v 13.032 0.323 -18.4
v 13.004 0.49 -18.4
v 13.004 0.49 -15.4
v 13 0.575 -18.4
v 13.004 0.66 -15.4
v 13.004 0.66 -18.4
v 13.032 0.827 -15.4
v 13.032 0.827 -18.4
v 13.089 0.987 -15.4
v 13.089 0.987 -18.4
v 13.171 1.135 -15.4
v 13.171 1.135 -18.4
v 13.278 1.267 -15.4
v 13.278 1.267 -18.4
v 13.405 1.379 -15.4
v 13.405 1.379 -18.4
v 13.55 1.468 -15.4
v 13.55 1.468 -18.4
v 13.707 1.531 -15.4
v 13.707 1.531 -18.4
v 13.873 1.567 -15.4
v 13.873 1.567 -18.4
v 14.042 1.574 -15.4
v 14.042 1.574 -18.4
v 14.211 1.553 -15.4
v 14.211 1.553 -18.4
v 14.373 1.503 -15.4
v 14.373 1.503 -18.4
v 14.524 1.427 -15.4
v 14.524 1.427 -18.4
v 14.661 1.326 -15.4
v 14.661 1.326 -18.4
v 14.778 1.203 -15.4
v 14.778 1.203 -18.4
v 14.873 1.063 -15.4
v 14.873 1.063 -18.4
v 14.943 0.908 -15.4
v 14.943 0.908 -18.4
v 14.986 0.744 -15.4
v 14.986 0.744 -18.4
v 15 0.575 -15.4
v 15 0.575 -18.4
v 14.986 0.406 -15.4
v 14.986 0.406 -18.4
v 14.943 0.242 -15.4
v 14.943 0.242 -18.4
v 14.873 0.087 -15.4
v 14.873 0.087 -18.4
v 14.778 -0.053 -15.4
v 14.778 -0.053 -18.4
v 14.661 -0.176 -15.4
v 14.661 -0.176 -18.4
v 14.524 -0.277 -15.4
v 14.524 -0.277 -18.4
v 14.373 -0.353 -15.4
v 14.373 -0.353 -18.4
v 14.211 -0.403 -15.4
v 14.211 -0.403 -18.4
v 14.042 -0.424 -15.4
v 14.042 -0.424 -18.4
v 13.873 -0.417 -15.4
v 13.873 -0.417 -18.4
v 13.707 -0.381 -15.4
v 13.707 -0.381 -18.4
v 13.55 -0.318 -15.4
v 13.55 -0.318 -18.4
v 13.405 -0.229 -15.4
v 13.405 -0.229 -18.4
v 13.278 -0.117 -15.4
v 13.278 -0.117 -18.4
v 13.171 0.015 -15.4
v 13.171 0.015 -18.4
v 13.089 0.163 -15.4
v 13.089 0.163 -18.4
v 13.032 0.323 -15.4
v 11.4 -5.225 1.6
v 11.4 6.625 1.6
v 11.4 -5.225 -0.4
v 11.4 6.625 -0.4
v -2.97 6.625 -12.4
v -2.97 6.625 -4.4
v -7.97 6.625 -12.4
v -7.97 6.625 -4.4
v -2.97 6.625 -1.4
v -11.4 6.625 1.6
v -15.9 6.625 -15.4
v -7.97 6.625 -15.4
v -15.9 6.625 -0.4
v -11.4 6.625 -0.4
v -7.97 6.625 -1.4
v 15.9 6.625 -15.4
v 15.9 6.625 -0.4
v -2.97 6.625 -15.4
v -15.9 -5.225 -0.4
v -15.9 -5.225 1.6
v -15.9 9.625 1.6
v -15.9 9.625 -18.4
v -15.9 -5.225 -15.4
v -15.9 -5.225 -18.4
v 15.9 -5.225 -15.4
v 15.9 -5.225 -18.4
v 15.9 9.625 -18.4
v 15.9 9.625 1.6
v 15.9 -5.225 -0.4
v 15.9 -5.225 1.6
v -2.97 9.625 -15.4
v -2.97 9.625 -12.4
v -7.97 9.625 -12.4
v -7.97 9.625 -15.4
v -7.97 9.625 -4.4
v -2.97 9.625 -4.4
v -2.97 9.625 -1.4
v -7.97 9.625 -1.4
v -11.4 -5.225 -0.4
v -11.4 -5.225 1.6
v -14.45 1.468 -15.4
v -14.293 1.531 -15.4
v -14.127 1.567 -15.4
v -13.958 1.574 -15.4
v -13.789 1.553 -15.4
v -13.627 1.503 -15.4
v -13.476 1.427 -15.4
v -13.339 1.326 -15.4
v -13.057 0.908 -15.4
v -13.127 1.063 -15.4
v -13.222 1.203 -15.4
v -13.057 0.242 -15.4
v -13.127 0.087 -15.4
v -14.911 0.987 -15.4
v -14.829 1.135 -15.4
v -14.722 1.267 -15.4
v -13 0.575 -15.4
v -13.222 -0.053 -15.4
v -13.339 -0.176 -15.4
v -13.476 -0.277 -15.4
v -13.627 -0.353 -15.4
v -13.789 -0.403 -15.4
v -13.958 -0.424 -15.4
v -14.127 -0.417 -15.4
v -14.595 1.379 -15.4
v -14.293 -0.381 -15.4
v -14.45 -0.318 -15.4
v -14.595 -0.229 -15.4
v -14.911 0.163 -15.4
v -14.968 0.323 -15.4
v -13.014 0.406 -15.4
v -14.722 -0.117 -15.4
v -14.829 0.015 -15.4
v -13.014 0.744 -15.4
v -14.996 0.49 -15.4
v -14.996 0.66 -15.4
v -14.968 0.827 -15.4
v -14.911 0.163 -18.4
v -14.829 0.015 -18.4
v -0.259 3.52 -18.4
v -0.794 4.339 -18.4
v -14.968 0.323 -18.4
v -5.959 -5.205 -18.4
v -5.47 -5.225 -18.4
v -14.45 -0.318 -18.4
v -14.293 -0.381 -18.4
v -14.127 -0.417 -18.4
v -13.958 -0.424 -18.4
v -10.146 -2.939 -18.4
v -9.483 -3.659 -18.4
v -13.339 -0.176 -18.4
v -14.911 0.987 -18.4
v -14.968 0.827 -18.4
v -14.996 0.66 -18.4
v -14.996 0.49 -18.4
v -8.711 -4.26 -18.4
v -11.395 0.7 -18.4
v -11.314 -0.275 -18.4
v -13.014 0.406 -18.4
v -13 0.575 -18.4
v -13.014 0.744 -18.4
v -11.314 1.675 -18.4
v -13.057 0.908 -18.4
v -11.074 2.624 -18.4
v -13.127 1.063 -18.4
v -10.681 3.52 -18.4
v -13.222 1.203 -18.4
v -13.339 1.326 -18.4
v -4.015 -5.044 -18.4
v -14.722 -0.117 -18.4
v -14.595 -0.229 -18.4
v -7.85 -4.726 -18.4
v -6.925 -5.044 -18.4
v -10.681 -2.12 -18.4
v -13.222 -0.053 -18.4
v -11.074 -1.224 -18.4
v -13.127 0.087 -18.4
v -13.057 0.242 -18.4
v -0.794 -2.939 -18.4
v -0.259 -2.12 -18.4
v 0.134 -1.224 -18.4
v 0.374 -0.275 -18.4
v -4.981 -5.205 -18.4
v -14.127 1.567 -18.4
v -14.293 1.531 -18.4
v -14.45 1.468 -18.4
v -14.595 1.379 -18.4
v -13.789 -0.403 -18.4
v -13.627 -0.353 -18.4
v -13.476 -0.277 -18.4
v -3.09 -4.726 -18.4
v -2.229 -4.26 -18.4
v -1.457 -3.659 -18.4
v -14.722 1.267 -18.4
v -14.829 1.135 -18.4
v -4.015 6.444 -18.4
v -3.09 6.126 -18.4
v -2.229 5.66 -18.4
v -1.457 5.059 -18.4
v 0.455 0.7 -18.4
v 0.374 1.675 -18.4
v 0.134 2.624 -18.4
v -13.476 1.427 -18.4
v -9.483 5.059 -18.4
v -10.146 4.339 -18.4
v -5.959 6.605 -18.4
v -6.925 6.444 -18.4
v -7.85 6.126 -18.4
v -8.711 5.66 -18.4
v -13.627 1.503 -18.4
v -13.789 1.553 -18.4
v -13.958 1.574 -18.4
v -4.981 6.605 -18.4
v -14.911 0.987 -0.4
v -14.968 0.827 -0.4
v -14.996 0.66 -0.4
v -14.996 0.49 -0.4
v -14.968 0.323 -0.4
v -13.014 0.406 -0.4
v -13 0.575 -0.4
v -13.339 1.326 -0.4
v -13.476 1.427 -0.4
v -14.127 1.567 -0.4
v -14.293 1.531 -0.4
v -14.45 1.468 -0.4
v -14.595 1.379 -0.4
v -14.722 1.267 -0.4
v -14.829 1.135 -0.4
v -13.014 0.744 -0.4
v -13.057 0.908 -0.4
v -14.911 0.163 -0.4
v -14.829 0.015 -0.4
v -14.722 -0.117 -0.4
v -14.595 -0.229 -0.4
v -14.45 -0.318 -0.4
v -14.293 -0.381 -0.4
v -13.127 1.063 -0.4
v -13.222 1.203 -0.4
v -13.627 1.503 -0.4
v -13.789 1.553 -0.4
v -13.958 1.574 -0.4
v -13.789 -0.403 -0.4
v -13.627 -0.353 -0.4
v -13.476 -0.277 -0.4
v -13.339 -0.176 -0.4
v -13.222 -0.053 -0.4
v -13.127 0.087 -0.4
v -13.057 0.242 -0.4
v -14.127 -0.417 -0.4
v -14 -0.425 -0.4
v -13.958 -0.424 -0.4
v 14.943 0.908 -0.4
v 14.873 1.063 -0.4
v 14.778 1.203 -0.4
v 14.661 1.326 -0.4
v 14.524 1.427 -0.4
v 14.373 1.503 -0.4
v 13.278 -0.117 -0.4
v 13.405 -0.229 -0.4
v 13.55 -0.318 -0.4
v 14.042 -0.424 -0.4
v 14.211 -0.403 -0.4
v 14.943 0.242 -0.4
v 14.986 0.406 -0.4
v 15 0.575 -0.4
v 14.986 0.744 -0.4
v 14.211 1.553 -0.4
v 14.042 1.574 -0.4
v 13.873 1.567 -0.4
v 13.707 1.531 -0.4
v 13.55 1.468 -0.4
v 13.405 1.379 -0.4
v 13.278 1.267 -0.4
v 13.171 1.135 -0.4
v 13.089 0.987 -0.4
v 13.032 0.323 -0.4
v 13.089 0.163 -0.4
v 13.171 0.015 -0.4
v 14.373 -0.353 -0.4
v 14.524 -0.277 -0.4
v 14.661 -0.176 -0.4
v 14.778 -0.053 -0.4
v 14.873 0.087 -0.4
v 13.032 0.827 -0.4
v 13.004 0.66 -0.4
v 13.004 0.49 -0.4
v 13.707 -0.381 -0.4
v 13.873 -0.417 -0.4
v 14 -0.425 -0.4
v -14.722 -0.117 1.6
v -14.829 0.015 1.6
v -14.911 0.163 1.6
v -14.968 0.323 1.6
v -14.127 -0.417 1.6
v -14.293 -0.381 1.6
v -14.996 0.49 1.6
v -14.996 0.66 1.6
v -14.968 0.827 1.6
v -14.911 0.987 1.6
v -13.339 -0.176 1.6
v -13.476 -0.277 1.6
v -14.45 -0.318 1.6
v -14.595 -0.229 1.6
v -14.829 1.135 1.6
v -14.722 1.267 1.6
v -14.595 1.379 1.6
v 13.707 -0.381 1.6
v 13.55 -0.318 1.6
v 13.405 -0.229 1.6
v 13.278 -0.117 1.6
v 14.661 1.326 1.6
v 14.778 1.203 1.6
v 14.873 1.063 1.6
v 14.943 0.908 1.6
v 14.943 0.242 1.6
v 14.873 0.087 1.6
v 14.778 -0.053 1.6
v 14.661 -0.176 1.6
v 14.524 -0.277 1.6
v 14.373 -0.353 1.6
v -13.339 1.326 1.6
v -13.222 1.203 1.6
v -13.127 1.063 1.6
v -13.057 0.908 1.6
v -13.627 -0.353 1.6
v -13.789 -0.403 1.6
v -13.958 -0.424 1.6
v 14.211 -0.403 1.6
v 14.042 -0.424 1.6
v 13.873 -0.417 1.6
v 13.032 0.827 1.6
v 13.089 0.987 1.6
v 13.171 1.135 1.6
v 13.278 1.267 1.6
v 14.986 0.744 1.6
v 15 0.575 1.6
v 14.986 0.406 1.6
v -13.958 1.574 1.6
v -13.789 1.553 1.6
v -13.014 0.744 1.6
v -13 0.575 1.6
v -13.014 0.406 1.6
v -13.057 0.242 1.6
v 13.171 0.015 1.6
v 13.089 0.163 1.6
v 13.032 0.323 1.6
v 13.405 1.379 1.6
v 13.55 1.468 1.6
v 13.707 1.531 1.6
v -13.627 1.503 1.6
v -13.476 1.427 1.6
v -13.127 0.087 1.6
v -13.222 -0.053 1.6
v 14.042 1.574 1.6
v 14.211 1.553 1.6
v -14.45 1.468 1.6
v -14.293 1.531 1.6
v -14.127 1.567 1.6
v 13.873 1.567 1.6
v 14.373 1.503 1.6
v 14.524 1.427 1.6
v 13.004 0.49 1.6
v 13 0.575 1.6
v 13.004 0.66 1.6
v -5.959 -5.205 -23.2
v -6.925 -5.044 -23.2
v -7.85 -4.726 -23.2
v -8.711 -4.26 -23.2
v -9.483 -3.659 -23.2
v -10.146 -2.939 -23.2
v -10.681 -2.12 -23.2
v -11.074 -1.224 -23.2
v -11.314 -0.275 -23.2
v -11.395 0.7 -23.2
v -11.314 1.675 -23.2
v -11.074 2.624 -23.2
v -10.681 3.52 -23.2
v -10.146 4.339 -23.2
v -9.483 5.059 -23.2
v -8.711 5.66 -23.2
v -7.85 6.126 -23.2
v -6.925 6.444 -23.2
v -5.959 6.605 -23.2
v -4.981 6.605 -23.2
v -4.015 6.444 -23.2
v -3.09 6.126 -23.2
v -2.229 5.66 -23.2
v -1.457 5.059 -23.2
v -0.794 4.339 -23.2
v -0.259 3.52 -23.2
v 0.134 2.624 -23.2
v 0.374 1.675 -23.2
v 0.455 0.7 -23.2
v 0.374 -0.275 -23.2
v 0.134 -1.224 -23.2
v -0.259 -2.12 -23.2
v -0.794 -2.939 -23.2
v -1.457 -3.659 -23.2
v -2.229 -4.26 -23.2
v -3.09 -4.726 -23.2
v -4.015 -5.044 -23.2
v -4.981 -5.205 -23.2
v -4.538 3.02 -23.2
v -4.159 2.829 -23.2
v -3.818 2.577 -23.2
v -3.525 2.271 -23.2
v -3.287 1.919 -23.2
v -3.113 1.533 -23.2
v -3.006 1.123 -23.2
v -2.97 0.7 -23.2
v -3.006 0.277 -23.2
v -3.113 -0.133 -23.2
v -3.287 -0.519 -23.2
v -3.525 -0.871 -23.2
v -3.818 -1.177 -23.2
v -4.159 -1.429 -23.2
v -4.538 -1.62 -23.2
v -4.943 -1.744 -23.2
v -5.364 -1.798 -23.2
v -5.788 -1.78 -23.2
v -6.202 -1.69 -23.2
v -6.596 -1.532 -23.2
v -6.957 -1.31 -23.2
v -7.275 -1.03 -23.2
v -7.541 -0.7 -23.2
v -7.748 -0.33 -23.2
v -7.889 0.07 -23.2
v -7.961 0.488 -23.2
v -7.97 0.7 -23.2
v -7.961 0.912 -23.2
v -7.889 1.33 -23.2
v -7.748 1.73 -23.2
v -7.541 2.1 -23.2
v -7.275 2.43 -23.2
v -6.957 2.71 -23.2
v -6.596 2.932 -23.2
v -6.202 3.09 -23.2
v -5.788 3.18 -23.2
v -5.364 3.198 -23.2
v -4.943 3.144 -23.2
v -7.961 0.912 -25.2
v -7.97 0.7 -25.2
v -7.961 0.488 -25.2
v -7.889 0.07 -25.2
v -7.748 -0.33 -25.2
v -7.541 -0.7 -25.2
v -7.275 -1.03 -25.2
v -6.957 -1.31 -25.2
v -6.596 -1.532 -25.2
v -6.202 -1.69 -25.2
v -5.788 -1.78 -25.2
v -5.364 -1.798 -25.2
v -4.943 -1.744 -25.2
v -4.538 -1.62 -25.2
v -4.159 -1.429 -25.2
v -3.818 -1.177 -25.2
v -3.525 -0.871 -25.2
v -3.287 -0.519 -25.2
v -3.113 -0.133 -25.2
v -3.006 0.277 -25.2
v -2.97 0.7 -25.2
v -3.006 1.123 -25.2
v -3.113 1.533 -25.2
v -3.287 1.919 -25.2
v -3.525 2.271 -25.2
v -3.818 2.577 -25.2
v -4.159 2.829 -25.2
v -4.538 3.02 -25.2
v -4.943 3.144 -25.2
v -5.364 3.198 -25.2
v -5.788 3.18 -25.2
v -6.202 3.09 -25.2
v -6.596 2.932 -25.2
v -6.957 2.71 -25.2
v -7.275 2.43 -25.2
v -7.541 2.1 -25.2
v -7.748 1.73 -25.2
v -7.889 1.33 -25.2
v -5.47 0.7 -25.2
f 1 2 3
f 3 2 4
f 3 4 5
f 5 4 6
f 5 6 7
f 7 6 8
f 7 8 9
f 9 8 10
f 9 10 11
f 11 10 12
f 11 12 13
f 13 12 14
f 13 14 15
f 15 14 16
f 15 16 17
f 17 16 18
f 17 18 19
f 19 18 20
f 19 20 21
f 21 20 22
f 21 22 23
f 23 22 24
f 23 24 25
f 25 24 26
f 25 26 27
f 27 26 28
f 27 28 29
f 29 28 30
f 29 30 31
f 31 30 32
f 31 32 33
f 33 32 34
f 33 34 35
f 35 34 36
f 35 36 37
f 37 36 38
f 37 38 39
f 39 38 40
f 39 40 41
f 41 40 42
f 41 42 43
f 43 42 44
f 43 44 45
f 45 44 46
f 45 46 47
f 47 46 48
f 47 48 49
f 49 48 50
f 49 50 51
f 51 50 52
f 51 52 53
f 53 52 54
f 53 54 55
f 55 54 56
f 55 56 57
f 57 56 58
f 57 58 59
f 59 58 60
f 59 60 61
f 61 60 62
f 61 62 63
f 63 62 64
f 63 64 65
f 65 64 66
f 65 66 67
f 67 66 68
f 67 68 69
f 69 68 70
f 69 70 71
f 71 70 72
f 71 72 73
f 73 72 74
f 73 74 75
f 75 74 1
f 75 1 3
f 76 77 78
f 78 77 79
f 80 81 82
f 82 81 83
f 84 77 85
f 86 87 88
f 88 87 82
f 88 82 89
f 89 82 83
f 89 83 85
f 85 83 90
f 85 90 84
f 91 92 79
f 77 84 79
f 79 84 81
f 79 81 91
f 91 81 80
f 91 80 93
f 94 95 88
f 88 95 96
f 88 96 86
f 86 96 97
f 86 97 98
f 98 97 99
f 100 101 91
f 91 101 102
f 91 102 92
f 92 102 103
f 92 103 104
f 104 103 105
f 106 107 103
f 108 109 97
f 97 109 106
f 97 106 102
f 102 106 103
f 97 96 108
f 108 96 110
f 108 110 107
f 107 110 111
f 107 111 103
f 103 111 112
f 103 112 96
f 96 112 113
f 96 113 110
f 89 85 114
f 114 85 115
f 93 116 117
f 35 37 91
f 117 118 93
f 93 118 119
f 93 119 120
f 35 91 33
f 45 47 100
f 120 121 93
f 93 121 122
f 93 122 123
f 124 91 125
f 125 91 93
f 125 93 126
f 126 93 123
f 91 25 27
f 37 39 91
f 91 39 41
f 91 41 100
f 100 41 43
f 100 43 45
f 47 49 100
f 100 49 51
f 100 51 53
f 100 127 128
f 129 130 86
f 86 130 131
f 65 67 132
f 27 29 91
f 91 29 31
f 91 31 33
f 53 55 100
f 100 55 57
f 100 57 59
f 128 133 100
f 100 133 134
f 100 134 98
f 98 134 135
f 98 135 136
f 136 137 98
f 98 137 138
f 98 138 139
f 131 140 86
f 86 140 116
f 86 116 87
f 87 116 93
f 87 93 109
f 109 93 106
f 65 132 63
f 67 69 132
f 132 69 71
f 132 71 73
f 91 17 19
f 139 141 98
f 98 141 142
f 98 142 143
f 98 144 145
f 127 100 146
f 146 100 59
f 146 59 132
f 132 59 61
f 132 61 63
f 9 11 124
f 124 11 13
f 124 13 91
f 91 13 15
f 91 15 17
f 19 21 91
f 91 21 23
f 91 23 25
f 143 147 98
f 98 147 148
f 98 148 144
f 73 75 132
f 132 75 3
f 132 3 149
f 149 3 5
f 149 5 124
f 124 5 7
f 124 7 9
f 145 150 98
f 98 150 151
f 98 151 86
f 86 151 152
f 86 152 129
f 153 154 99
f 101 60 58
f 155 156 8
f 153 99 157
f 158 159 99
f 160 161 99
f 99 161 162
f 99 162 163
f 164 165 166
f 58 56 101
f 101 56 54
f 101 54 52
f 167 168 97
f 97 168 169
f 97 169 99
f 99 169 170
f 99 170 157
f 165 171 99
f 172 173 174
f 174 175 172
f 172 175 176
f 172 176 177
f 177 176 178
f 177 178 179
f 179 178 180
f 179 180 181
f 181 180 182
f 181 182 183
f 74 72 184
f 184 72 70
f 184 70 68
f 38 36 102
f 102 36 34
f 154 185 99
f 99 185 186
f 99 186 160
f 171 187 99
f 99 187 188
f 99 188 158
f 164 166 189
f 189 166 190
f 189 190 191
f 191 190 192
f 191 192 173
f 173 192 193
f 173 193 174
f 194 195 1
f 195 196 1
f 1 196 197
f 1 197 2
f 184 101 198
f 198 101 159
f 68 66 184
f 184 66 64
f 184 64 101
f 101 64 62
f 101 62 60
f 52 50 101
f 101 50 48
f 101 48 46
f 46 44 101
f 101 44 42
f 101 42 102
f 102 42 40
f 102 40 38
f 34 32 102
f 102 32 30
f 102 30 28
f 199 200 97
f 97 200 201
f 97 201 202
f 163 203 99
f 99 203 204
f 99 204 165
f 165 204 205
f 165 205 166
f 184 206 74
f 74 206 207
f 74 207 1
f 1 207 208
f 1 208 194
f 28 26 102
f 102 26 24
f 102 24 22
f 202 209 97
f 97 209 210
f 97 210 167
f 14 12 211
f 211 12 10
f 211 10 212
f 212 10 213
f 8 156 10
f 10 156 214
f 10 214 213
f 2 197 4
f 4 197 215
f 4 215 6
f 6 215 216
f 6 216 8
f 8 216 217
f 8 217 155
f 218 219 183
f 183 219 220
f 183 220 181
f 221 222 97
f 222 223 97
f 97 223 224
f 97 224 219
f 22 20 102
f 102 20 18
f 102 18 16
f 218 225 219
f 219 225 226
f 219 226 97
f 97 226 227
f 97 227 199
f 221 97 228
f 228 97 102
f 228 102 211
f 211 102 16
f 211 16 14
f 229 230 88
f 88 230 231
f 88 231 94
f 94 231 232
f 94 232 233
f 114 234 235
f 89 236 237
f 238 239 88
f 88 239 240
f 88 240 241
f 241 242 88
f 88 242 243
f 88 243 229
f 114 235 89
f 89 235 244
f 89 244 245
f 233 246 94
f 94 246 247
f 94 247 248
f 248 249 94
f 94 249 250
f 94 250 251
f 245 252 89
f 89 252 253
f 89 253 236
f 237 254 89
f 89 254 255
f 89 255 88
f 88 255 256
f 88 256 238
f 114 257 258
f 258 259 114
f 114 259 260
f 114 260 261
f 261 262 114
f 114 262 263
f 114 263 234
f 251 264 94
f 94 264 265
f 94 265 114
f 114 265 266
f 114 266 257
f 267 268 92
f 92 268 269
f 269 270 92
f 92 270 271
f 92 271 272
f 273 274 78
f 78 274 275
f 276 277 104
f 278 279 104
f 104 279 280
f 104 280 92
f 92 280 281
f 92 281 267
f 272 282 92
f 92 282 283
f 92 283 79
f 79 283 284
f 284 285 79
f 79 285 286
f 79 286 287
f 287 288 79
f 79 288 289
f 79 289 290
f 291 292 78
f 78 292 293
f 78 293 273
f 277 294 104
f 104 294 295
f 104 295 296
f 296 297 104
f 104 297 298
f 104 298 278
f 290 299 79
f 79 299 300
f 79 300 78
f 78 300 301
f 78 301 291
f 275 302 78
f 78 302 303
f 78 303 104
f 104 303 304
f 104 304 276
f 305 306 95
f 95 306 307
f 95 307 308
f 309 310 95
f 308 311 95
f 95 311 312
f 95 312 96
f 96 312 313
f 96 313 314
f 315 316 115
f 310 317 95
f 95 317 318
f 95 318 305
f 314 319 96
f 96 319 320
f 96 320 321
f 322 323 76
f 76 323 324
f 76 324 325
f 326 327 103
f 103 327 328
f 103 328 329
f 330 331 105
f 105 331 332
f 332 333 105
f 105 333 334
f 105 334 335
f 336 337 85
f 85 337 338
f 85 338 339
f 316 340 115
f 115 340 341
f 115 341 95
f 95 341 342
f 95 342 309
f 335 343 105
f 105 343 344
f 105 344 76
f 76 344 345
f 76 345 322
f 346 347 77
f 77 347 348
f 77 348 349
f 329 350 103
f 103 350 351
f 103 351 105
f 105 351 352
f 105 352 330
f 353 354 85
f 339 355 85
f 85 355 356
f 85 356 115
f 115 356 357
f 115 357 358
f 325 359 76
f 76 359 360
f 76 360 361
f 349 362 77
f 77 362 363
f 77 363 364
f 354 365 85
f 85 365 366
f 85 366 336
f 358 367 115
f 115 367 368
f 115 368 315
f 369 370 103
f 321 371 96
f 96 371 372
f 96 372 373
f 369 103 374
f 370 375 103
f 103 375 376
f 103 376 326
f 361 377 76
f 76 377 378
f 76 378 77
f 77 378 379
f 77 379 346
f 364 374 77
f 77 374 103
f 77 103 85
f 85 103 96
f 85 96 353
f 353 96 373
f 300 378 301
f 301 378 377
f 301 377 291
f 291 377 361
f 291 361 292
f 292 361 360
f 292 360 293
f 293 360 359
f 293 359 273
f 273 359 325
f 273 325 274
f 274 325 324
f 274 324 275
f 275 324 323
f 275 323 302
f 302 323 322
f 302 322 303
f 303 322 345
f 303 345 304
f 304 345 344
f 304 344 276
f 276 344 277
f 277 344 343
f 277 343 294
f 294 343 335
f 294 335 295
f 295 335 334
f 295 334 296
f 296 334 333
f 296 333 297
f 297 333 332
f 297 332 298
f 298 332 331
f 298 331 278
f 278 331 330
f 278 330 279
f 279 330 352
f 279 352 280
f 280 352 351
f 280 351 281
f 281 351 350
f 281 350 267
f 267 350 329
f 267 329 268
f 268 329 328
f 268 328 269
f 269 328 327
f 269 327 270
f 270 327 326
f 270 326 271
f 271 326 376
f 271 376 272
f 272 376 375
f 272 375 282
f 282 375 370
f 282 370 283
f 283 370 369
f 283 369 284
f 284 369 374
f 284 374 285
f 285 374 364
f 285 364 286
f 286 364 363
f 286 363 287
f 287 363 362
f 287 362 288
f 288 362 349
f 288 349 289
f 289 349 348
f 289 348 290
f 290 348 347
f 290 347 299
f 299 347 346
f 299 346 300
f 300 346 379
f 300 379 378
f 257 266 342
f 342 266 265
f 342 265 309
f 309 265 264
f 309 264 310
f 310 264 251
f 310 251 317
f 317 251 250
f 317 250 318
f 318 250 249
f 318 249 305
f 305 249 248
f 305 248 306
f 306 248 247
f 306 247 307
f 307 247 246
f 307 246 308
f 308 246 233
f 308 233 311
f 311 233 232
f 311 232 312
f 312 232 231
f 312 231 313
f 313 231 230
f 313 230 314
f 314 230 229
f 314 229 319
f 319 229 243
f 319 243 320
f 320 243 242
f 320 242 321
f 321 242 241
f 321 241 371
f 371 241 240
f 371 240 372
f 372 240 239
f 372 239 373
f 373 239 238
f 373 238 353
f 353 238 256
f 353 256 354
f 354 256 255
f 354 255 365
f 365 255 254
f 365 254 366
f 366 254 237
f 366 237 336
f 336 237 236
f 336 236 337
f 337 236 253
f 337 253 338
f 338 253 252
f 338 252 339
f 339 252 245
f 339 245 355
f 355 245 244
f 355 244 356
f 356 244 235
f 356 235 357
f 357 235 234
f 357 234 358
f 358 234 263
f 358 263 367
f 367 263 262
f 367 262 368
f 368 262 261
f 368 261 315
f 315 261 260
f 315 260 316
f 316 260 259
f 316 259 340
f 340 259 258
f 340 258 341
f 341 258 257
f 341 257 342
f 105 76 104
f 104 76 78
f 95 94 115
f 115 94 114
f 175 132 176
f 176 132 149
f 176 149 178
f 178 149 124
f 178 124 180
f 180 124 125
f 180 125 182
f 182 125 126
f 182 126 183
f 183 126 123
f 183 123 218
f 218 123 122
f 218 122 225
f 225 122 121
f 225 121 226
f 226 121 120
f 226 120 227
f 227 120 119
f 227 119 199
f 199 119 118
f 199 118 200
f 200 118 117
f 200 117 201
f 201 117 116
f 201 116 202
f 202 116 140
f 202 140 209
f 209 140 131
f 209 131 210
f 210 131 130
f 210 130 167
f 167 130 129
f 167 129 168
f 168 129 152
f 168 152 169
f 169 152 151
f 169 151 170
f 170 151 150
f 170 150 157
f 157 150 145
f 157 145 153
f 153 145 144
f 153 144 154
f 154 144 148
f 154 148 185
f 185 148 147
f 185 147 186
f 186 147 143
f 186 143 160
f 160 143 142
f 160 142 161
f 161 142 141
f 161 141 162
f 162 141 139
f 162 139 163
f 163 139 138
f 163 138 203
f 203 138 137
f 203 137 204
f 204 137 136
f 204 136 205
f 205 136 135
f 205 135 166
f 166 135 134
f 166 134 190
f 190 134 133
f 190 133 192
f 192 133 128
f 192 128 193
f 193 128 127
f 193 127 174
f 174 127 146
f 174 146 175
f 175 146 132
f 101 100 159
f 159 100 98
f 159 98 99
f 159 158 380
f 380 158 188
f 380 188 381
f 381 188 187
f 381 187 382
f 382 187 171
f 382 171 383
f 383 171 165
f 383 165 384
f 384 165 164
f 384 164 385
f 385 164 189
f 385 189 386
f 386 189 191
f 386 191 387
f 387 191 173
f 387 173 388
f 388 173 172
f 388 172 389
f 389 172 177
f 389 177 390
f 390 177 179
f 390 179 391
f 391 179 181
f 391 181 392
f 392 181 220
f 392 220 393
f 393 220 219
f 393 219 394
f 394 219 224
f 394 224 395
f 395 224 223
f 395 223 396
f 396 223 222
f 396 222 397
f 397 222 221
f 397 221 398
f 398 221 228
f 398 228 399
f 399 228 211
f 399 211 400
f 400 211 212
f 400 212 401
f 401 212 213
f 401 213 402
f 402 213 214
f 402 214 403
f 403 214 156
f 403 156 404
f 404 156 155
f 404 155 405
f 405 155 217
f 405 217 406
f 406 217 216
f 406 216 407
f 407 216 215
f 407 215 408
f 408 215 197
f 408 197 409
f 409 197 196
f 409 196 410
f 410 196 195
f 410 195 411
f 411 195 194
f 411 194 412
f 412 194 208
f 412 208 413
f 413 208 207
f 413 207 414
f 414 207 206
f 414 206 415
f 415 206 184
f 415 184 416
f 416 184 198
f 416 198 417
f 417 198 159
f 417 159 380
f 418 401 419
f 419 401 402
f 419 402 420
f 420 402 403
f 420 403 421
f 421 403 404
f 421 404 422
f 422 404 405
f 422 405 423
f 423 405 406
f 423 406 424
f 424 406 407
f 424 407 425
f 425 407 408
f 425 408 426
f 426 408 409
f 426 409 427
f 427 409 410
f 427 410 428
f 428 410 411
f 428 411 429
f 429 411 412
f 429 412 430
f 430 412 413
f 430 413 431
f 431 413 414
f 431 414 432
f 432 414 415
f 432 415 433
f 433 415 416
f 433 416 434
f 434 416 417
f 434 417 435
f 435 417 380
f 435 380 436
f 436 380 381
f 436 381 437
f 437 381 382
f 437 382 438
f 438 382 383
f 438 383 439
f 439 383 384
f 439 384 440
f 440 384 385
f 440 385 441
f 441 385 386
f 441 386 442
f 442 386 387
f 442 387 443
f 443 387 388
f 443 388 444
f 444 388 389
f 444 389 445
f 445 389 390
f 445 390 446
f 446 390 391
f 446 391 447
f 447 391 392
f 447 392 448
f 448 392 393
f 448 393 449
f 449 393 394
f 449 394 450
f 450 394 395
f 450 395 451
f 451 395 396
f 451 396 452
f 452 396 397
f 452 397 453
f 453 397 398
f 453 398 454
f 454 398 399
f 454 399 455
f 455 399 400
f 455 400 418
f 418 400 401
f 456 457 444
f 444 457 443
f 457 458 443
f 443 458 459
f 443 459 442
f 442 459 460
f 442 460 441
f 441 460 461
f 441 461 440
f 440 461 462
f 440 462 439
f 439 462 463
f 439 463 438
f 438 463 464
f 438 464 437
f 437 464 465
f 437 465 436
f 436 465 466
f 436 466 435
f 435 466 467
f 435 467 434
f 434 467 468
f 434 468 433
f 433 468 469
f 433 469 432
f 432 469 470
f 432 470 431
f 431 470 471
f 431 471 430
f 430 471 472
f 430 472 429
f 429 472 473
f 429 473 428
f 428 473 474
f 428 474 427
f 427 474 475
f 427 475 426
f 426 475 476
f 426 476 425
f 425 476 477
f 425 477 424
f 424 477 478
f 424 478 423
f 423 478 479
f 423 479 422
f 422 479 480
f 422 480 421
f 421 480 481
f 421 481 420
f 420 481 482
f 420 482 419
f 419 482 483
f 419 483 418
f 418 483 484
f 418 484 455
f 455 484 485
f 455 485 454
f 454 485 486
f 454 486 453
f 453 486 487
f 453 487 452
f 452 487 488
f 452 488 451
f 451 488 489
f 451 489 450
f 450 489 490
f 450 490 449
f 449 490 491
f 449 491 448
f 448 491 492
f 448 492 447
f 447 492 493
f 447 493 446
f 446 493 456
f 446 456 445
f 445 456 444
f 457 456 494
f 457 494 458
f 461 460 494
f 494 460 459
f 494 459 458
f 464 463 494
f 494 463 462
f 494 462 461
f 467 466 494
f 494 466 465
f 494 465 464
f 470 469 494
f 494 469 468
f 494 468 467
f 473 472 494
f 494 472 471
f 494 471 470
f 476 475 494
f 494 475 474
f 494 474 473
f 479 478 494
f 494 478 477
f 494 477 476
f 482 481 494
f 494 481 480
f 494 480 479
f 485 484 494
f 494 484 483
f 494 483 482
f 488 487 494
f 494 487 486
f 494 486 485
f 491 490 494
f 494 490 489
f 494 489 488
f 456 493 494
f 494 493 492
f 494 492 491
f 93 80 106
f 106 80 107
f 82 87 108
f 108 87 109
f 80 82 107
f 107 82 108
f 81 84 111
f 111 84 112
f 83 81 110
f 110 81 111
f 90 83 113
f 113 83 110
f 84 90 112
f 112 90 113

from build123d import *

# Parameters (mm, degrees)
SKETCH1_W            = 31.8
SKETCH1_H            = 13.25
BOSS_EXTRUDE3_DEPTH  = 3
SKETCH3_W            = 31.8
SKETCH3_H            = 3
BOSS_EXTRUDE4_DEPTH  = 24
SKETCH4_W            = 22.8
SKETCH4_H            = 13.25
CUT_EXTRUDE3_DEPTH   = 3
SKETCH6_W            = 31.8
SKETCH6_H            = 2
BOSS_EXTRUDE5_DEPTH  = 13.25
SKETCH7_W            = 3.6
SKETCH7_H            = 3
CUT_EXTRUDE4_DEPTH   = 40.30496947
SKETCH8_W            = 2
SKETCH8_H            = 1.25
BOSS_EXTRUDE6_DEPTH  = 31.8
SKETCH10_W           = 2
SKETCH10_H           = 17.5
CUT_EXTRUDE6_DEPTH   = 38.505207972
BOSS_EXTRUDE7_START  = -31.8
SKETCH11_W           = 3
SKETCH11_H           = 1.25
BOSS_EXTRUDE7_DEPTH  = 31.8
SKETCH12_W           = 22.8
SKETCH12_H           = 1.25
CUT_EXTRUDE7_DEPTH   = 4
SKETCH15_W           = 31.8
SKETCH15_H           = 3
BOSS_EXTRUDE9_DEPTH  = 17.5
BOSS_EXTRUDE12_DEPTH = 5
SKETCH20_W           = 15
SKETCH20_H           = 14.5
SKETCH20_W_2         = 5.230602644
SKETCH20_H_2         = 17.5
CUT_EXTRUDE9_DEPTH   = 100
SKETCH22_R           = 1
SKETCH22_W           = 31.8
SKETCH22_H           = 2.65
CUT_EXTRUDE11_DEPTH  = 20
SKETCH24_R           = 5.925
BOSS_EXTRUDE13_DEPTH = 4.8
SKETCH25_R           = 2.5
BOSS_EXTRUDE14_DEPTH = 2
SKETCH27_W           = 5
SKETCH27_H           = 3
CUT_EXTRUDE12_DEPTH  = 10


with BuildPart() as part:
    # Sketch1 → Boss-Extrude3 (new body)
    with BuildSketch(Plane.XY):
        Rectangle(SKETCH1_W, SKETCH1_H)
    extrude(amount=BOSS_EXTRUDE3_DEPTH)

    # Sketch3 → Boss-Extrude4 (add)
    with BuildSketch(Plane.XY.offset(3)):
        with Locations((0, 8.125)):
            Rectangle(SKETCH3_W, SKETCH3_H)
    extrude(amount=-BOSS_EXTRUDE4_DEPTH)

    # Sketch4 → Cut-Extrude3 (cut)
    with BuildSketch(Plane.XY.offset(3)):
        Rectangle(SKETCH4_W, SKETCH4_H)
    extrude(amount=-CUT_EXTRUDE3_DEPTH, mode=Mode.SUBTRACT)

    # Sketch6 → Boss-Extrude5 (add)
    with BuildSketch(Plane.XZ.offset(-6.625)):
        with Locations((0, -16.4)):
            Rectangle(SKETCH6_W, SKETCH6_H)
    extrude(amount=BOSS_EXTRUDE5_DEPTH)

    # Sketch7 → Cut-Extrude4 (cut, through all)
    with BuildSketch(Plane.ZY.offset(15.9)):
        with Locations((-19.2, 8.125)):
            Rectangle(SKETCH7_W, SKETCH7_H)
    extrude(amount=-CUT_EXTRUDE4_DEPTH, mode=Mode.SUBTRACT)

    # Sketch8 → Boss-Extrude6 (add)
    with BuildSketch(Plane(origin=(15.9, 0, 0), x_dir=(0, 0, -1), z_dir=(1, 0, 0))):
        with Locations((16.4, -7.25)):
            Rectangle(SKETCH8_W, SKETCH8_H)
    extrude(amount=-BOSS_EXTRUDE6_DEPTH)

    # Sketch10 → Cut-Extrude6 (cut, through all)
    with BuildSketch(Plane(origin=(15.9, 0, 0), x_dir=(0, 0, -1), z_dir=(1, 0, 0))):
        with Locations((16.4, 0.875)):
            Rectangle(SKETCH10_W, SKETCH10_H)
    extrude(amount=-CUT_EXTRUDE6_DEPTH, mode=Mode.SUBTRACT)

    # Sketch11 → Boss-Extrude7 (add)
    with BuildSketch(Plane(origin=(15.9, 0, 0), x_dir=(0, 0, -1), z_dir=(1, 0, 0)).offset(BOSS_EXTRUDE7_START)):
        with Locations((-1.5, -7.25)):
            Rectangle(SKETCH11_W, SKETCH11_H)
    boss_extrude7 = extrude(amount=BOSS_EXTRUDE7_DEPTH)

    # Mirror2: Boss-Extrude7 across plane
    add(boss_extrude7.mirror(Plane(origin=(0, 0, 0), x_dir=(0, 0, 1), z_dir=(1, 0, 0))))

    # Sketch12 → Cut-Extrude7 (cut)
    with BuildSketch(Plane.XY.offset(3)):
        with Locations((0, -7.25)):
            Rectangle(SKETCH12_W, SKETCH12_H)
    extrude(amount=-CUT_EXTRUDE7_DEPTH, mode=Mode.SUBTRACT)

    # Sketch15 → Boss-Extrude9 (add)
    with BuildSketch(Plane(origin=(0, 9.625, 0), x_dir=(1, 0, 0), z_dir=(0, 1, 0))):
        with Locations((0, 16.9)):
            Rectangle(SKETCH15_W, SKETCH15_H)
    extrude(amount=-BOSS_EXTRUDE9_DEPTH)

    # Sketch19 → Boss-Extrude12 (add)
    with BuildSketch(Plane.XY.offset(3)):
        Polygon((-15.9, 9.625), (15.9, 9.625), (15.9, -7.875), (11.4, -7.875), (11.4, 6.625), (-11.4, 6.625), (-11.4, -7.875), (-15.9, -7.875), align=None)
    extrude(amount=-BOSS_EXTRUDE12_DEPTH)

    # Sketch20 → Cut-Extrude9 (cut)
    with BuildSketch(Plane.ZY.offset(15.9)):
        with Locations((-7.9, -0.625)):
            Rectangle(SKETCH20_W, SKETCH20_H)
        with Locations((4.215301322, 0.875)):
            Rectangle(SKETCH20_W_2, SKETCH20_H_2)
    extrude(amount=-CUT_EXTRUDE9_DEPTH, mode=Mode.SUBTRACT)

    # Sketch22 → Cut-Extrude11 (cut)
    with BuildSketch(Plane.XY.offset(1.6)):
        with Locations((-14, 0.575)):
            Circle(SKETCH22_R)
        with Locations((14, 0.575)):
            Circle(SKETCH22_R)
        with Locations((0, -6.55)):
            Rectangle(SKETCH22_W, SKETCH22_H)
    extrude(amount=-CUT_EXTRUDE11_DEPTH, mode=Mode.SUBTRACT)

    # Sketch24 → Boss-Extrude13 (add)
    with BuildSketch(Plane(origin=(0, 0, -18.4), x_dir=(-1, 0, 0), z_dir=(0, 0, -1))):
        with Locations(Location((5.47, 0.7, 0), (0, 0, 270))):
            Circle(SKETCH24_R)
    extrude(amount=BOSS_EXTRUDE13_DEPTH)

    # Sketch25 → Boss-Extrude14 (add)
    with BuildSketch(Plane(origin=(0, 0, -23.2), x_dir=(-1, 0, 0), z_dir=(0, 0, -1))):
        with Locations((5.47, 0.7)):
            Circle(SKETCH25_R)
    extrude(amount=BOSS_EXTRUDE14_DEPTH)

    # Sketch27 → Cut-Extrude12 (cut)
    with BuildSketch(Plane.XZ.offset(-6.625)):
        with Locations((-5.47, -13.9)):
            Rectangle(SKETCH27_W, SKETCH27_H)
        with Locations((-5.47, -2.9)):
            Rectangle(SKETCH27_W, SKETCH27_H)
    extrude(amount=-CUT_EXTRUDE12_DEPTH, mode=Mode.SUBTRACT)


solid = part.part
